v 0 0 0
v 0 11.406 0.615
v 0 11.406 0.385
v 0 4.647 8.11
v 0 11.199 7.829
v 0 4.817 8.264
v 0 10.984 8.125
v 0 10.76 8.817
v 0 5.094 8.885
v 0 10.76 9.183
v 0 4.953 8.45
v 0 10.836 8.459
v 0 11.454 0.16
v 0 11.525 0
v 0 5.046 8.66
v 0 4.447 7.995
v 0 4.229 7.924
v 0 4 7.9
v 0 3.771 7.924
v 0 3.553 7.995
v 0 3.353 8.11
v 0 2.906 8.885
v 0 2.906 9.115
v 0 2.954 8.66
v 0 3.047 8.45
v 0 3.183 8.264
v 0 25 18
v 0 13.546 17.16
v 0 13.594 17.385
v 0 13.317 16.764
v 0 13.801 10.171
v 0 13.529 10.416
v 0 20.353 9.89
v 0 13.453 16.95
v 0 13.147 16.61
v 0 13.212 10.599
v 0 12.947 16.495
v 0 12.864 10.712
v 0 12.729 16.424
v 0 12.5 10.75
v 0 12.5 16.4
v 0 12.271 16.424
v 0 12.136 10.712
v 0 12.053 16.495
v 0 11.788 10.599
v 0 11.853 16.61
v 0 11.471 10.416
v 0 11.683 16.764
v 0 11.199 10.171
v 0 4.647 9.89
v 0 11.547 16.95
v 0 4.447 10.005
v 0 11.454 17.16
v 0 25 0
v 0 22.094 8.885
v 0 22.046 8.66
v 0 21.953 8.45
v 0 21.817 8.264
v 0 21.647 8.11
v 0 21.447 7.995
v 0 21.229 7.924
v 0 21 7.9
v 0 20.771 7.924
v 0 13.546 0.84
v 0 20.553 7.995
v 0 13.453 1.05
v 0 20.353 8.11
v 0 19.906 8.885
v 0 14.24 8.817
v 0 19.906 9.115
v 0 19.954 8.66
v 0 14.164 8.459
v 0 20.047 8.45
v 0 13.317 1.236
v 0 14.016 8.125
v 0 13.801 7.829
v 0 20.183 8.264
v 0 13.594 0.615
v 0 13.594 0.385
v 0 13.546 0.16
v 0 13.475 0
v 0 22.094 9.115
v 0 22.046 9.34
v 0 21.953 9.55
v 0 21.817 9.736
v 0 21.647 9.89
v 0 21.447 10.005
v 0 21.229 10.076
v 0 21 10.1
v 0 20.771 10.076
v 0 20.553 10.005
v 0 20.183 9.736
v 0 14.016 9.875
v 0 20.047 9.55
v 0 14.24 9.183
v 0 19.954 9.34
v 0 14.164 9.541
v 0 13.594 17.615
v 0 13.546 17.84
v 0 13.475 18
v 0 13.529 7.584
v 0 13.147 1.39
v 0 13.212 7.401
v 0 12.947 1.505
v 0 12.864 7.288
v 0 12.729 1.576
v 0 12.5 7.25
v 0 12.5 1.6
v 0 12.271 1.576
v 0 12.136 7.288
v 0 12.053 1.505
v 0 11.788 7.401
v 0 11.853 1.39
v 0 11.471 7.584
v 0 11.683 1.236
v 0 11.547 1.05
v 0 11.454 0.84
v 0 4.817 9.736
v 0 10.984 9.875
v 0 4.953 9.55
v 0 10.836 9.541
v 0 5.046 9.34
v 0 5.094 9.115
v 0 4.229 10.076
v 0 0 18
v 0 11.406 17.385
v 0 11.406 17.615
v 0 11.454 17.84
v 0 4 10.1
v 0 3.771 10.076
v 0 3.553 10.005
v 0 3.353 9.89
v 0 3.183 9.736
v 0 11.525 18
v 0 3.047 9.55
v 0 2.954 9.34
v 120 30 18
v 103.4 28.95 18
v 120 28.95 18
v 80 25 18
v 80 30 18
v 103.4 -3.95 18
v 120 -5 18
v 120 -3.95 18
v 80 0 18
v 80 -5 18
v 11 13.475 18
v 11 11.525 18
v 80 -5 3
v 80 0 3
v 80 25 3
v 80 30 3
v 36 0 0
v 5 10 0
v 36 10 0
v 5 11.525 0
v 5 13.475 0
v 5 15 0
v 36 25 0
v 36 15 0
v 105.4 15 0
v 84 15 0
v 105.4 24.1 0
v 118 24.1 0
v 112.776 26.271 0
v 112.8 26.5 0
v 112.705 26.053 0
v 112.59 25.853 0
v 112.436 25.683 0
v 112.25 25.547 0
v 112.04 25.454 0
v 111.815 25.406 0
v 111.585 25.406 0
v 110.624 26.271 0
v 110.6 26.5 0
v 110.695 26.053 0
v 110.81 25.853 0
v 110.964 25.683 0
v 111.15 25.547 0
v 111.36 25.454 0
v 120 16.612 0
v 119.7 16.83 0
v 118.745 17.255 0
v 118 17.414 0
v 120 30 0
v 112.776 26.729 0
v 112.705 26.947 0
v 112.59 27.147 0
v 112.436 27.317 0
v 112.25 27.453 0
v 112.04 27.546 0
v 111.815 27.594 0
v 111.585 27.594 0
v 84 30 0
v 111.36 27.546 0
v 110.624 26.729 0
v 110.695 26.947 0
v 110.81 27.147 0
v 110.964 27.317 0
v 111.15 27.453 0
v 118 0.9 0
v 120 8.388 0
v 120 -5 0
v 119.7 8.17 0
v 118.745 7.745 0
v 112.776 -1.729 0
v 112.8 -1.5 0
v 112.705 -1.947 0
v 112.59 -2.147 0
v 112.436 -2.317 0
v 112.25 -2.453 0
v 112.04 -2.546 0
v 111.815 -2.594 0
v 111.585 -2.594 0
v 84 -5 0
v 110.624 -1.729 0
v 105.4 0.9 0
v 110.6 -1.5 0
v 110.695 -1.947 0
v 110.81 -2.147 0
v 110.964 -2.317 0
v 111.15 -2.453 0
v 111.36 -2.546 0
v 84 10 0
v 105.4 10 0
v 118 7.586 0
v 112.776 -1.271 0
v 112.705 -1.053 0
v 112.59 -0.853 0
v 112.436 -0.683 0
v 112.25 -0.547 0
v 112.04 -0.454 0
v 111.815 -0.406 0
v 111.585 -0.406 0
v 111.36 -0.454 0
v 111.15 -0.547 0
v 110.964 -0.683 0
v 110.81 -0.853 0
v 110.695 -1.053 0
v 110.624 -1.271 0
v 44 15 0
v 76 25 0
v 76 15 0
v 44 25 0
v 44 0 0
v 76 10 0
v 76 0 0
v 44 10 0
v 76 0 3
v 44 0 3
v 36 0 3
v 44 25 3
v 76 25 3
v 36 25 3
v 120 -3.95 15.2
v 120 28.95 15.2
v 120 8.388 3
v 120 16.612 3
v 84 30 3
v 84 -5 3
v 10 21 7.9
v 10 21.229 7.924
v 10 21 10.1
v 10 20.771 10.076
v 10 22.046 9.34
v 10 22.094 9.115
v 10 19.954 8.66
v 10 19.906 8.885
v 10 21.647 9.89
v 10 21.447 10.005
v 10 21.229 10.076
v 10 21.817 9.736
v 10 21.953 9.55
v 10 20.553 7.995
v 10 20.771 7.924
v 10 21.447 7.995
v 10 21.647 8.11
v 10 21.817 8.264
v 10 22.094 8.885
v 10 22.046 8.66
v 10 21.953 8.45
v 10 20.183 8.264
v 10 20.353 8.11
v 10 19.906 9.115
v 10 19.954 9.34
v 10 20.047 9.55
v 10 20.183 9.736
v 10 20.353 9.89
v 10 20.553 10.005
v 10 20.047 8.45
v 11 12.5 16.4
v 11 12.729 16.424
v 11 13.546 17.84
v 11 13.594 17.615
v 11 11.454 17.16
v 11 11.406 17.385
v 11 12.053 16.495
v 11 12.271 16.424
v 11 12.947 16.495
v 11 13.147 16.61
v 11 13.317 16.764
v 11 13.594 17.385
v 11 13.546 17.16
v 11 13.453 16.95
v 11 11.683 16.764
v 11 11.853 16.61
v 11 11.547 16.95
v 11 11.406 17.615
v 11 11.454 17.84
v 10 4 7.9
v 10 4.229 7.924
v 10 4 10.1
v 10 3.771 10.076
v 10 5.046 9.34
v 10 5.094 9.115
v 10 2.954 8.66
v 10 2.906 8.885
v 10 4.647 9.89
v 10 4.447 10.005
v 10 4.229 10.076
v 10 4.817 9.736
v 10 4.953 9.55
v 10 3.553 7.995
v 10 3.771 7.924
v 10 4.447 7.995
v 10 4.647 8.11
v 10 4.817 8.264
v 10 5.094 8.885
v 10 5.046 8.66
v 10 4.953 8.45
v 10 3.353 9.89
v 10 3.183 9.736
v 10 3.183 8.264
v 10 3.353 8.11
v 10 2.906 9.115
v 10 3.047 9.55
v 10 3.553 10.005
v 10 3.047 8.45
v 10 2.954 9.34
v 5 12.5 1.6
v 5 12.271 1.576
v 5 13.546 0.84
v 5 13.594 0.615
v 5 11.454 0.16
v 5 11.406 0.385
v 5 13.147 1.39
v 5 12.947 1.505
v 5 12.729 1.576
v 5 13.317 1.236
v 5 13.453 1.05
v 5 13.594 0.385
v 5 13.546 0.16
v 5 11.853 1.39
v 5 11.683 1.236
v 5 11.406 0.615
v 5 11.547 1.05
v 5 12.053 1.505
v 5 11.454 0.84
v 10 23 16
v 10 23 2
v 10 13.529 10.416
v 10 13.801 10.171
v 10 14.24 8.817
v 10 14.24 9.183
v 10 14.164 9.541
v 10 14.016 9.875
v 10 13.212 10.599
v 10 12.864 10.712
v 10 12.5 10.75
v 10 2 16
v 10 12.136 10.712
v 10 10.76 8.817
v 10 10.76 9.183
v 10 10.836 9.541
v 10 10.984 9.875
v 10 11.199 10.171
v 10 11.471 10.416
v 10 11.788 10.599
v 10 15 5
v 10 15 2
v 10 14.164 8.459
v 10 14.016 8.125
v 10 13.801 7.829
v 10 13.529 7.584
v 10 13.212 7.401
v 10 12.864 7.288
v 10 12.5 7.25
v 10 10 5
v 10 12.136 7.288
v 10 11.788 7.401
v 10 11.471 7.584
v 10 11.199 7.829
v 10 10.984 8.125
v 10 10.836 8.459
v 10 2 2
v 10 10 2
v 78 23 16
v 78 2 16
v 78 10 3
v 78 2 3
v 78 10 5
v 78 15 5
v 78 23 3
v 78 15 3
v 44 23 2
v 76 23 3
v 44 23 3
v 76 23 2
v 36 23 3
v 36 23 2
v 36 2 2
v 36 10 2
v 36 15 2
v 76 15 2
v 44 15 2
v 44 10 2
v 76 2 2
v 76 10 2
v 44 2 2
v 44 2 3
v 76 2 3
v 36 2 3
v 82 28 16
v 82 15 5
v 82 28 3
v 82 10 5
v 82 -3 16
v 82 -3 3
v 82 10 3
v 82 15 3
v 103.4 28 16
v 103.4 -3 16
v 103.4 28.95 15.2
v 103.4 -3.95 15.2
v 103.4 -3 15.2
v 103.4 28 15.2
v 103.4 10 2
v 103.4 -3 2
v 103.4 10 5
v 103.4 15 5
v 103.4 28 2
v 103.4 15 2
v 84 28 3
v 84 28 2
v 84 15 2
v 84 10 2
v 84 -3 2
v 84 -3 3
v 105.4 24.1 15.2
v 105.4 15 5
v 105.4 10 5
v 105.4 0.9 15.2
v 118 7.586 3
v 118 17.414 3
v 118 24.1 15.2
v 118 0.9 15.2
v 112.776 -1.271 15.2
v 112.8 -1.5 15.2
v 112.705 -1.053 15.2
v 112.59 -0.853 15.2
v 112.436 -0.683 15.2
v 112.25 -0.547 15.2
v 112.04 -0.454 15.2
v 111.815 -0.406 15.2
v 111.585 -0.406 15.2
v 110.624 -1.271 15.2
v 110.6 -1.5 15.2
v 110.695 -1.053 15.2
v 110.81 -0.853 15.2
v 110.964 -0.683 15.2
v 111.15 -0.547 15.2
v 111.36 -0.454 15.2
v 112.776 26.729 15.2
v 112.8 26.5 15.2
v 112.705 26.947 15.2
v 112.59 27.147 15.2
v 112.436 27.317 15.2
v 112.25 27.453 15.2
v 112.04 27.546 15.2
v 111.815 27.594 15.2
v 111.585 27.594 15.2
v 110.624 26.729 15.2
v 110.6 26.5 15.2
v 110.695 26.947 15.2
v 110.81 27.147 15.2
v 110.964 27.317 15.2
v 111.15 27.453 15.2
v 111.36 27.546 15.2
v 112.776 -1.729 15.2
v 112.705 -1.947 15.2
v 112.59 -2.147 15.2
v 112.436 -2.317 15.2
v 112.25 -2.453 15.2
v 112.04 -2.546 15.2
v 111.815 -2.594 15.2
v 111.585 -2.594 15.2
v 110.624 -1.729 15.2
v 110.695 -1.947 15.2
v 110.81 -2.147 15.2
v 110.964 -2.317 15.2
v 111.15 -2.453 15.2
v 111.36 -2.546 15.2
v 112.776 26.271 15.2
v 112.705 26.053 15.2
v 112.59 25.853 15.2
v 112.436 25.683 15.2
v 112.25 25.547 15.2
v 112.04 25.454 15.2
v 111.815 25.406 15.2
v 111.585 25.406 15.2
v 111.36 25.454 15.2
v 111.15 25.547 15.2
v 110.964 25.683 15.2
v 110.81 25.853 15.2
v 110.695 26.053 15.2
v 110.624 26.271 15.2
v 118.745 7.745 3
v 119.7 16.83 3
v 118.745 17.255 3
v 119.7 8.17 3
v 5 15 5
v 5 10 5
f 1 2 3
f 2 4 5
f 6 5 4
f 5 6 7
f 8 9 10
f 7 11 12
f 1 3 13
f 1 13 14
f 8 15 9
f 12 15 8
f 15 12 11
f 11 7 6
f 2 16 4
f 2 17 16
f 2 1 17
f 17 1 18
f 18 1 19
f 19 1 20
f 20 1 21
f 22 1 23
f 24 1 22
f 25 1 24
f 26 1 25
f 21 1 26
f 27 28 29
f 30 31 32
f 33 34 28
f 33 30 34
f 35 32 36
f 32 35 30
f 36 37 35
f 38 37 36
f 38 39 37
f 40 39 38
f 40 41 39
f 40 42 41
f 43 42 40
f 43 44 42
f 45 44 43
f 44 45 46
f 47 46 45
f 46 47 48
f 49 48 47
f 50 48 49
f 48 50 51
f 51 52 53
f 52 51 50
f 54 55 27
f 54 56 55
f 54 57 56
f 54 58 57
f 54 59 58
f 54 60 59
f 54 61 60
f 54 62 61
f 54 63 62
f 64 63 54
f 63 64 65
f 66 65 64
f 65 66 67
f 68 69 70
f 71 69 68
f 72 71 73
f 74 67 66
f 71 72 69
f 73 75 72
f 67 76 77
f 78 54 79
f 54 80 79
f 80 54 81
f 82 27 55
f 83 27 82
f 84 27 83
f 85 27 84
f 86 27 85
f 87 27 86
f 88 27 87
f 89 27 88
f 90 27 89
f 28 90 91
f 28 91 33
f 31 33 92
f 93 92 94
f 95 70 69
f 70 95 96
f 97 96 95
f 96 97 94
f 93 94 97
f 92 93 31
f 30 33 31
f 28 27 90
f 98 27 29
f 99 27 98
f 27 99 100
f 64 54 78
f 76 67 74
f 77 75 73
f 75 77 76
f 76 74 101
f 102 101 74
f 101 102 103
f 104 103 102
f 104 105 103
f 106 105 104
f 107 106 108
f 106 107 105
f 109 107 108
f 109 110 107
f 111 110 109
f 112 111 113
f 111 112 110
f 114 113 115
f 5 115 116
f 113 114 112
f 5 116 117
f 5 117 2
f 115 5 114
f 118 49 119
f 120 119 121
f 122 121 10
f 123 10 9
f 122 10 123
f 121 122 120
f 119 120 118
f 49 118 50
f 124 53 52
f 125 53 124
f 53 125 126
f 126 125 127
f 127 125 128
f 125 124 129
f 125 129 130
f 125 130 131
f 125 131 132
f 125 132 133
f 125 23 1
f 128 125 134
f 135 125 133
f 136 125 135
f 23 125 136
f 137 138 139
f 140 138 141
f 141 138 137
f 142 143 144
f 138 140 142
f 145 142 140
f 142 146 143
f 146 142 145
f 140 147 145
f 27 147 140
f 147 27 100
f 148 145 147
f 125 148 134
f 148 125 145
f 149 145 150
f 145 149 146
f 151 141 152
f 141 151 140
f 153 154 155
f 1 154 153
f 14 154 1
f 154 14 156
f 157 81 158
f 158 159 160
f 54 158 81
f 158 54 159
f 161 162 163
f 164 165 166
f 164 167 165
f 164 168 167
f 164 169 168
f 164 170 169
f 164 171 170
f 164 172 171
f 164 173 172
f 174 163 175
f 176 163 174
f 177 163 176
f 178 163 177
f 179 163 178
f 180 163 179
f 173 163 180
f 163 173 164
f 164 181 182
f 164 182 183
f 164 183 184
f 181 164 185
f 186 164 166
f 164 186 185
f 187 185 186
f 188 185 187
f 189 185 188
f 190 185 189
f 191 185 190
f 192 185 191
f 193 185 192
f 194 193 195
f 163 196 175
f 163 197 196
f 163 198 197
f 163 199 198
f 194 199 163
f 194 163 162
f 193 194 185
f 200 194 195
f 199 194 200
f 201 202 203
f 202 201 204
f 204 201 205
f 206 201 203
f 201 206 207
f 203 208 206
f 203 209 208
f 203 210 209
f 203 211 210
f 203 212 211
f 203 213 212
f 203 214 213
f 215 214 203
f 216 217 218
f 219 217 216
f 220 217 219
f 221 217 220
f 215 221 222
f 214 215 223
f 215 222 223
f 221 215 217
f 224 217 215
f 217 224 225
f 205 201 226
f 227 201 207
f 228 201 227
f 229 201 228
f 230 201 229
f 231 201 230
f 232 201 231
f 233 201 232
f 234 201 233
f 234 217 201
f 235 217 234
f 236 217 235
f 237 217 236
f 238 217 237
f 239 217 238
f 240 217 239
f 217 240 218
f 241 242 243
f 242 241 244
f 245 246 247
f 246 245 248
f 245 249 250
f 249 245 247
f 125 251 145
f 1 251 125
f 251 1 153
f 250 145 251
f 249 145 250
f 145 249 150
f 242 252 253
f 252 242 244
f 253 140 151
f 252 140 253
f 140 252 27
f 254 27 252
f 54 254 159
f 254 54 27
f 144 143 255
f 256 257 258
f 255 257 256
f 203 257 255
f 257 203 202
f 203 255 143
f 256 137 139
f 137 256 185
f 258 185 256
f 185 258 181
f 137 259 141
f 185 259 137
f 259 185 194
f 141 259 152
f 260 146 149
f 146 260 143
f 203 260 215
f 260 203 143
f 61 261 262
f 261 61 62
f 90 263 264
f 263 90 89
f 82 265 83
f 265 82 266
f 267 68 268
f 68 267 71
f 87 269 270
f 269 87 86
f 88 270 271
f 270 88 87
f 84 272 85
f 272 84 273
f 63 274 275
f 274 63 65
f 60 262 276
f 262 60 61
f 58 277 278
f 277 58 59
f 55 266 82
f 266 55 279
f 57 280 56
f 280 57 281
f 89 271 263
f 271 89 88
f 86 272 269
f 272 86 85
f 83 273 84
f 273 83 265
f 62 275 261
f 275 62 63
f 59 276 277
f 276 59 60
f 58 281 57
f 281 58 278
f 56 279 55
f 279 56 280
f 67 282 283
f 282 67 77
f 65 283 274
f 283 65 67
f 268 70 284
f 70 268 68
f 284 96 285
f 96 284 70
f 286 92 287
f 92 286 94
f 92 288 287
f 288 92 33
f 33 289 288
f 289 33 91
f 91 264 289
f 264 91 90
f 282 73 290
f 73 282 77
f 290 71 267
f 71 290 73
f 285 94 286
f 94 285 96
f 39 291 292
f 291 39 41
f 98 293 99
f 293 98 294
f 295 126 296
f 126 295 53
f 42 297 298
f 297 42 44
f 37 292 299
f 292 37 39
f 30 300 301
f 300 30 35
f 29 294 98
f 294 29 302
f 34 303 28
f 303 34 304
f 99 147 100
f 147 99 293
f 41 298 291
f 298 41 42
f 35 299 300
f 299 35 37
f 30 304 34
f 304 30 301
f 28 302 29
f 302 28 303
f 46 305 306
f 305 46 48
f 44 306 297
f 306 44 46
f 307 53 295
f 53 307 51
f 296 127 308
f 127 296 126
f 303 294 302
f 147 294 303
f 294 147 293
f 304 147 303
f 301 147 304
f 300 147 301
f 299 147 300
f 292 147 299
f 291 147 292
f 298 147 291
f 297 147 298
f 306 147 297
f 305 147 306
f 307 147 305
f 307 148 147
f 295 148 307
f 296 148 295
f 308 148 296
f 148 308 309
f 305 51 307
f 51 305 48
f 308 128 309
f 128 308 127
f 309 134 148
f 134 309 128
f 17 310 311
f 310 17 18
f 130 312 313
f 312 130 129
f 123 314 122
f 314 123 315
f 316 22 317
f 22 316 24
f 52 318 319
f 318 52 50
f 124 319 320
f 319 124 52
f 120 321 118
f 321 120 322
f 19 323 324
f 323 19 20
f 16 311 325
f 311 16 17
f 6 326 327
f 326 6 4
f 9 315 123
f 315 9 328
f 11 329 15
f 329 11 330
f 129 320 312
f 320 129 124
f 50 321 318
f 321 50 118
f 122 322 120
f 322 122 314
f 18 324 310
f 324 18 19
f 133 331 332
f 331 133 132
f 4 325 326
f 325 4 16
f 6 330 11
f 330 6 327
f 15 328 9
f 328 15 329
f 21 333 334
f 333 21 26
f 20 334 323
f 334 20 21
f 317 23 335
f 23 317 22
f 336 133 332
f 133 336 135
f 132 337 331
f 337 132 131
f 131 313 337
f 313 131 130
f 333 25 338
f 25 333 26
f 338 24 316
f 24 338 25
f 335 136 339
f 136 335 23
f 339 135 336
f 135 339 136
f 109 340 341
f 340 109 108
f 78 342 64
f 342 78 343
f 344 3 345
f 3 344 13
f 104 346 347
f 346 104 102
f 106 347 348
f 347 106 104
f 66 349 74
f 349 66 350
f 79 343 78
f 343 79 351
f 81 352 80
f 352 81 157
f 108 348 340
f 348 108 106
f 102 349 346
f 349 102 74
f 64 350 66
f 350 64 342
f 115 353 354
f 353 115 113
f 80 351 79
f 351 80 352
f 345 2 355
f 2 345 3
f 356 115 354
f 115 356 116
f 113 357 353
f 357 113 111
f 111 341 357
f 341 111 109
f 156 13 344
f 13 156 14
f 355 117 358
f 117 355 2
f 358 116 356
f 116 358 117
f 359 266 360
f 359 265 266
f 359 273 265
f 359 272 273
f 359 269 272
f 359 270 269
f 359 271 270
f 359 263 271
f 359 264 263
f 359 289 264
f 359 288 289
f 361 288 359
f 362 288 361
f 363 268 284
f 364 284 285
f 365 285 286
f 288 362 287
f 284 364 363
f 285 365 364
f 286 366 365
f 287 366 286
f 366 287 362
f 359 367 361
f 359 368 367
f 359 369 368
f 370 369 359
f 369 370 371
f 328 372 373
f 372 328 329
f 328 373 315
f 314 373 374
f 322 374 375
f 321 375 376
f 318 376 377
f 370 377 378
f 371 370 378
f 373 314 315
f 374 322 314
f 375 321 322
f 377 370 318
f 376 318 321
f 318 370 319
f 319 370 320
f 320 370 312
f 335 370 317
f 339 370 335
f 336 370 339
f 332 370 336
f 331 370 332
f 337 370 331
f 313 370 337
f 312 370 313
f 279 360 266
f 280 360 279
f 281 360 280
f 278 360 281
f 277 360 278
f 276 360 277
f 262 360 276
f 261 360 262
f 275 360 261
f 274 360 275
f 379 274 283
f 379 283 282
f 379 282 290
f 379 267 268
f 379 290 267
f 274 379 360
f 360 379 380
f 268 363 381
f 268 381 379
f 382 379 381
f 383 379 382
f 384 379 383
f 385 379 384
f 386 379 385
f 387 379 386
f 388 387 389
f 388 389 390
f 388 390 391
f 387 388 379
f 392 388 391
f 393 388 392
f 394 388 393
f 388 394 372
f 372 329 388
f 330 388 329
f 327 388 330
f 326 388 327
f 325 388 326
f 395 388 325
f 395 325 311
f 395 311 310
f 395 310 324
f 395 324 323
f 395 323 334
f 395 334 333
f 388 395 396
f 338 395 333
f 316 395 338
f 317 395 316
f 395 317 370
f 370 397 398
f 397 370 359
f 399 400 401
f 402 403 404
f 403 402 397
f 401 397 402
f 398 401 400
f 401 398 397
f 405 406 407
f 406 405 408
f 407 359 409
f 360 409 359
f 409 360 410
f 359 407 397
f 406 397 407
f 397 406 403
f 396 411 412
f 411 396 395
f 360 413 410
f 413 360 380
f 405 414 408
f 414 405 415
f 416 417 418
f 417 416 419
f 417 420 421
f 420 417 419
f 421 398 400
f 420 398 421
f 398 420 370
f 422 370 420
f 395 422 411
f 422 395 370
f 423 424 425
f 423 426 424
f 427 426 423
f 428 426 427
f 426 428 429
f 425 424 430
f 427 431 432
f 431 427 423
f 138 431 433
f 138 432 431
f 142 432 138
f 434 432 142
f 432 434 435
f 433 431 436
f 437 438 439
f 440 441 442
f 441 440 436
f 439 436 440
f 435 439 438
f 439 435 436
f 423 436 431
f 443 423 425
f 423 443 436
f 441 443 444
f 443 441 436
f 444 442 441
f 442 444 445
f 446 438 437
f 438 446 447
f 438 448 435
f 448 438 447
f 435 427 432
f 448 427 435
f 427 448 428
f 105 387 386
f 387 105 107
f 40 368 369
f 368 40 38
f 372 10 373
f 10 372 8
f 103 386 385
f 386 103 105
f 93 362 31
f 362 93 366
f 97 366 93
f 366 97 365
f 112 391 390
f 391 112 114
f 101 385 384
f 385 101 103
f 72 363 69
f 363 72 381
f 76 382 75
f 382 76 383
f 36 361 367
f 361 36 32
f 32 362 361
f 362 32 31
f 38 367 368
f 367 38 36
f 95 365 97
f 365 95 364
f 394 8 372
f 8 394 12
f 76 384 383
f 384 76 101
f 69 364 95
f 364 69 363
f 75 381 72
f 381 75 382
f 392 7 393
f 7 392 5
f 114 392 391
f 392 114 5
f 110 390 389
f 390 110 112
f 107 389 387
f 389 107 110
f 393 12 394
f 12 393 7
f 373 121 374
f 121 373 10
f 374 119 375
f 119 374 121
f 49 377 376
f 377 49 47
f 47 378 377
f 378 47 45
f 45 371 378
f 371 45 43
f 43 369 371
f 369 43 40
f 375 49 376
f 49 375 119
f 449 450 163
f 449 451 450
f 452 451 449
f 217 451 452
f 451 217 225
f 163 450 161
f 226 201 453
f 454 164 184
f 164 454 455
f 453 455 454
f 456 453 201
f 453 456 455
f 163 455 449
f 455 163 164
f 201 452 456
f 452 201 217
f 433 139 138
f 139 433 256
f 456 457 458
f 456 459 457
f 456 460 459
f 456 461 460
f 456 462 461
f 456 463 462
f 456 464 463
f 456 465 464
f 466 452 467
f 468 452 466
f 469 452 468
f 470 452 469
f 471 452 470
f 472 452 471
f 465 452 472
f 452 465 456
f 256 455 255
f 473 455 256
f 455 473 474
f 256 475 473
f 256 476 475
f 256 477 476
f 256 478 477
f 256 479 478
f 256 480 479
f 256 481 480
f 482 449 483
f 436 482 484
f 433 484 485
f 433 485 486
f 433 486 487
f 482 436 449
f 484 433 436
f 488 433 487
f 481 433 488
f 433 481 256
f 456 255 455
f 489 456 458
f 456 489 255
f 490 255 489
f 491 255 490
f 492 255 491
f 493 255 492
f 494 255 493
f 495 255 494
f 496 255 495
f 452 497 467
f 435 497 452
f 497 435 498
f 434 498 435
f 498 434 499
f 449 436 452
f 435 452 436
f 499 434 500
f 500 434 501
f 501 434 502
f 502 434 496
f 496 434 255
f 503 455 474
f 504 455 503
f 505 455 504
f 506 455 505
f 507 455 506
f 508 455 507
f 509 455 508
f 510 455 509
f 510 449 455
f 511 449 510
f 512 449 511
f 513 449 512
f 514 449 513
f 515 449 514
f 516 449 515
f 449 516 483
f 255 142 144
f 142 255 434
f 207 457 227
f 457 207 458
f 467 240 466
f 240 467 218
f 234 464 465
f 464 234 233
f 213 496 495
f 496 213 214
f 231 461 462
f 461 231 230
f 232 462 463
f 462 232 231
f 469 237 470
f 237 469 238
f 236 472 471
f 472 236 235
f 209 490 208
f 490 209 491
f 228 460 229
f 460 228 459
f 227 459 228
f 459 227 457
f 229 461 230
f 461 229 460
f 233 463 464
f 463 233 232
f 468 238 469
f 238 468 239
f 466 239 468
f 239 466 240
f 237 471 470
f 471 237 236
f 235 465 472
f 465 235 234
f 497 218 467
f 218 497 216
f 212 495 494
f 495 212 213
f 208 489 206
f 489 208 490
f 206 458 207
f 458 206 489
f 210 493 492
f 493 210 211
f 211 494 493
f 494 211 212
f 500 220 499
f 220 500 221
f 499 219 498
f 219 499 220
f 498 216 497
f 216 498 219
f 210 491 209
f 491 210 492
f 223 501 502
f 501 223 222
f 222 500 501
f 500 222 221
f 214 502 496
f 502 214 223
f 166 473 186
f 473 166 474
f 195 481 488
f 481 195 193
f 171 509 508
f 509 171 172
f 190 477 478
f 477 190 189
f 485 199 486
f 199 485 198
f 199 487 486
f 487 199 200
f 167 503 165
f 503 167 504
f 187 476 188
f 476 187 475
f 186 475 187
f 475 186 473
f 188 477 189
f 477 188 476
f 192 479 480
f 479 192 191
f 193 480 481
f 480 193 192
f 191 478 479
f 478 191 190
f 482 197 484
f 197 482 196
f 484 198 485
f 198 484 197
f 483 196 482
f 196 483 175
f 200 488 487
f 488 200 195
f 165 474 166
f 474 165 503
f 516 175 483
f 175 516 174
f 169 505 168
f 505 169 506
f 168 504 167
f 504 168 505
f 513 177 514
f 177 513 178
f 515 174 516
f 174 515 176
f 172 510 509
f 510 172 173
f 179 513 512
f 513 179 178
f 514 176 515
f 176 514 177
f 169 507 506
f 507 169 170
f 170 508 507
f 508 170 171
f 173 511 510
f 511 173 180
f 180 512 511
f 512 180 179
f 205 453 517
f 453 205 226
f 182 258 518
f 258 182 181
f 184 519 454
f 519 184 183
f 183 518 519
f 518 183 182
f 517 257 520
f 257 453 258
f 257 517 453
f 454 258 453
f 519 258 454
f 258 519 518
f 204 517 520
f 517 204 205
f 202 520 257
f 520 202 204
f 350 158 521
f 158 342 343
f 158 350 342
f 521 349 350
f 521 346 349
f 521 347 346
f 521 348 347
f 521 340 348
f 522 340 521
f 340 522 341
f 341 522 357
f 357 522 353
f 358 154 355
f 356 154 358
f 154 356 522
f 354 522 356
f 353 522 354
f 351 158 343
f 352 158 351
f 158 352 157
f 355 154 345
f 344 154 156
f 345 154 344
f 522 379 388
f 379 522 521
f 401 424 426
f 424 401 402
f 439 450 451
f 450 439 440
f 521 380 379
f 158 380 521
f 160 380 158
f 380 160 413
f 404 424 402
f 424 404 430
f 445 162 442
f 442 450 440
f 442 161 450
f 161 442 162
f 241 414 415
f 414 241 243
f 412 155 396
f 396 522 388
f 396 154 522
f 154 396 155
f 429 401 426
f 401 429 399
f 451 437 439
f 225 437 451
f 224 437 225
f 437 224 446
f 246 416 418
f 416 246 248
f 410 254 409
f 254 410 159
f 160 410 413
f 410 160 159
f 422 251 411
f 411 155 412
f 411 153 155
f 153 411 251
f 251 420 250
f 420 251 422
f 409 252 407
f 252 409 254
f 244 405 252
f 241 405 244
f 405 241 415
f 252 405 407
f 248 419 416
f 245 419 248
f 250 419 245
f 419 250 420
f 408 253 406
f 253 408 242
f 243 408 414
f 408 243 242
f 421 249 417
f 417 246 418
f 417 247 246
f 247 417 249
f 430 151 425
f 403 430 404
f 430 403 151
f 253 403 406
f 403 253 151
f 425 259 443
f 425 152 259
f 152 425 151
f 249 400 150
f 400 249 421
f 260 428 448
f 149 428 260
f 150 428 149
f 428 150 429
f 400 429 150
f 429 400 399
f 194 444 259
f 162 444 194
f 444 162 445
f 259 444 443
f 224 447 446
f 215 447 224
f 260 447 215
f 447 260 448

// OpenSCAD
// ============================================================
// Part 3: Upper Arm Link
// Remote Surgical Training Arm — Jaycar Servo Edition
// ============================================================
// Print: flat (wide face down), supports inside SG90 pocket
// Time: ~1.25 hr, ~20g
// ============================================================
// Proximal end: bolts to Horn B on shoulder YM2763
// Distal end: holds YM2758 (SG90 micro servo) for needle angle
// The SG90 mounts via its ear flanges sitting on top of the pocket.
// Shaft points downward (perpendicular to arm plane).
// ============================================================

// === HORN PARAMETERS (same 25T horn as YM2763/YM2765) ===
horn_bolt_circle_r = 8.5;  // M2 bolt hole radius on horn — MEASURE
horn_center_hole   = 3.5;  // horn screw access hole
m2_hole_dia        = 2.2;

// === SG90 (YM2758) DIMENSIONS — MEASURE WITH CALIPERS ===
sg90_body_w     = 22.8;   // body width (not including ears)
sg90_body_d     = 12.2;   // body depth
sg90_body_h     = 22.5;   // body height (below ears)
sg90_ear_w      = 32.5;   // total width including both mounting ears
sg90_ear_h      = 2.5;    // ear thickness
sg90_ear_z      = 16.0;   // height from bottom of body to bottom of ears
sg90_tab_cc     = 28.0;   // ear hole centre-to-centre — MEASURE
sg90_shaft_offset = 5.5;  // shaft centre offset from body centre (along width)
sg90_tolerance  = 0.2;    // per-side clearance

// === ARM LINK DIMENSIONS ===
arm_length      = 120;    // total length
arm_w_prox      = 25;     // proximal width (horn mount end)
arm_w_dist      = 35;     // distal width — wider to accommodate SG90 ear span (32.5mm)
arm_h           = 18;     // height/thickness
wall            = 2.0;    // wall thickness
step_start      = 80;     // X position where arm starts widening to distal width

// Horn mount pad at proximal end
horn_pad_len    = 10;     // length of solid section for horn bolts
horn_pad_h      = 4;      // extra solid pad thickness above hollow

// SG90 pocket at distal end
// The SG90 drops into a pocket with ears resting on top edges
sg90_pocket_len = sg90_body_d + sg90_tolerance * 2;  // pocket along arm length axis
sg90_pocket_w   = sg90_body_w + sg90_tolerance * 2;  // pocket across arm width
sg90_pocket_h   = sg90_ear_z + sg90_tolerance;       // depth below ears

// Ear slot dimensions (for the flanges to sit on)
// Ears overhang — slot is full width of distal section
ear_slot_w      = sg90_ear_w + sg90_tolerance * 2;
ear_slot_d      = sg90_ear_h + sg90_tolerance;

// Cable channel
cable_w         = 5;
cable_h         = 5;

// Zip-tie slots
zip_w           = 8;
zip_h           = 3;

module arm_link() {
    difference() {
        union() {
            // --- Proximal section (narrow) ---
            cube([step_start, arm_w_prox, arm_h]);
            
            // --- Distal section (wide, for SG90 ears) ---
            translate([step_start, -(arm_w_dist - arm_w_prox) / 2, 0])
                cube([arm_length - step_start, arm_w_dist, arm_h]);
        }
        
        // --- Hollow interior in proximal section ---
        translate([horn_pad_len, wall, wall])
            cube([
                step_start - horn_pad_len - wall,
                arm_w_prox - wall * 2,
                arm_h - wall * 2
            ]);
        
        // --- Hollow interior in distal section (up to SG90 pocket) ---
        translate([step_start + wall, -(arm_w_dist - arm_w_prox) / 2 + wall, wall])
            cube([
                arm_length - step_start - sg90_pocket_len - wall * 3,
                arm_w_dist - wall * 2,
                arm_h - wall * 2
            ]);
        
        // --- Horn mount holes at proximal end (X=0 face) ---
        for (angle = [0, 90, 180, 270])
            translate([
                -1,
                arm_w_prox / 2 + horn_bolt_circle_r * cos(angle),
                arm_h / 2 + horn_bolt_circle_r * sin(angle)
            ])
                rotate([0, 90, 0])
                    cylinder(h = horn_pad_len + 2, d = m2_hole_dia, $fn = 30);
        
        // Horn centre screw access
        translate([-1, arm_w_prox / 2, arm_h / 2])
            rotate([0, 90, 0])
                cylinder(h = horn_pad_len + 2, d = horn_center_hole, $fn = 30);
        
        // --- SG90 pocket at distal end ---
        // Centred in the wider distal section
        dist_centre_y = -(arm_w_dist - arm_w_prox) / 2 + arm_w_dist / 2;
        
        translate([
            arm_length - wall - sg90_pocket_len,
            dist_centre_y - sg90_pocket_w / 2,
            -1
        ])
            cube([sg90_pocket_len, sg90_pocket_w, sg90_pocket_h + 1]);
        
        // --- Ear slots at ear height ---
        translate([
            arm_length - wall - sg90_pocket_len - wall,
            dist_centre_y - ear_slot_w / 2,
            sg90_pocket_h - 1
        ])
            cube([sg90_pocket_len + wall * 2 + 2, ear_slot_w, ear_slot_d + 1]);
        
        // --- SG90 mounting tab holes (vertical through top into ears) ---
        translate([
            arm_length - wall - sg90_pocket_len / 2,
            dist_centre_y - sg90_tab_cc / 2,
            -1
        ])
            cylinder(h = arm_h + 2, d = m2_hole_dia, $fn = 30);
        
        translate([
            arm_length - wall - sg90_pocket_len / 2,
            dist_centre_y + sg90_tab_cc / 2,
            -1
        ])
            cylinder(h = arm_h + 2, d = m2_hole_dia, $fn = 30);
        
        // --- Shaft exit hole through bottom ---
        translate([
            arm_length - wall - sg90_pocket_len / 2 + sg90_shaft_offset,
            dist_centre_y,
            -1
        ])
            cylinder(h = wall + 2, d = 10, $fn = 30);
        
        // --- Cable channel along bottom interior ---
        translate([horn_pad_len / 2, (arm_w_prox - cable_w) / 2, -1])
            cube([step_start - horn_pad_len / 2, cable_w, cable_h + 1]);
        
        // Continue cable channel into distal section
        translate([step_start, dist_centre_y - cable_w / 2, -1])
            cube([arm_length - step_start - sg90_pocket_len, cable_w, cable_h + 1]);
        
        // --- Zip-tie slots at 1/3 and 2/3 length ---
        translate([arm_length / 3 - zip_w / 2, -1, -1])
            cube([zip_w, arm_w_prox + 2, zip_h + 1]);
        
        translate([arm_length * 2 / 3 - zip_w / 2, 
                   -(arm_w_dist - arm_w_prox) / 2 - 1, -1])
            cube([zip_w, arm_w_dist + 2, zip_h + 1]);
    }
}

arm_link();
